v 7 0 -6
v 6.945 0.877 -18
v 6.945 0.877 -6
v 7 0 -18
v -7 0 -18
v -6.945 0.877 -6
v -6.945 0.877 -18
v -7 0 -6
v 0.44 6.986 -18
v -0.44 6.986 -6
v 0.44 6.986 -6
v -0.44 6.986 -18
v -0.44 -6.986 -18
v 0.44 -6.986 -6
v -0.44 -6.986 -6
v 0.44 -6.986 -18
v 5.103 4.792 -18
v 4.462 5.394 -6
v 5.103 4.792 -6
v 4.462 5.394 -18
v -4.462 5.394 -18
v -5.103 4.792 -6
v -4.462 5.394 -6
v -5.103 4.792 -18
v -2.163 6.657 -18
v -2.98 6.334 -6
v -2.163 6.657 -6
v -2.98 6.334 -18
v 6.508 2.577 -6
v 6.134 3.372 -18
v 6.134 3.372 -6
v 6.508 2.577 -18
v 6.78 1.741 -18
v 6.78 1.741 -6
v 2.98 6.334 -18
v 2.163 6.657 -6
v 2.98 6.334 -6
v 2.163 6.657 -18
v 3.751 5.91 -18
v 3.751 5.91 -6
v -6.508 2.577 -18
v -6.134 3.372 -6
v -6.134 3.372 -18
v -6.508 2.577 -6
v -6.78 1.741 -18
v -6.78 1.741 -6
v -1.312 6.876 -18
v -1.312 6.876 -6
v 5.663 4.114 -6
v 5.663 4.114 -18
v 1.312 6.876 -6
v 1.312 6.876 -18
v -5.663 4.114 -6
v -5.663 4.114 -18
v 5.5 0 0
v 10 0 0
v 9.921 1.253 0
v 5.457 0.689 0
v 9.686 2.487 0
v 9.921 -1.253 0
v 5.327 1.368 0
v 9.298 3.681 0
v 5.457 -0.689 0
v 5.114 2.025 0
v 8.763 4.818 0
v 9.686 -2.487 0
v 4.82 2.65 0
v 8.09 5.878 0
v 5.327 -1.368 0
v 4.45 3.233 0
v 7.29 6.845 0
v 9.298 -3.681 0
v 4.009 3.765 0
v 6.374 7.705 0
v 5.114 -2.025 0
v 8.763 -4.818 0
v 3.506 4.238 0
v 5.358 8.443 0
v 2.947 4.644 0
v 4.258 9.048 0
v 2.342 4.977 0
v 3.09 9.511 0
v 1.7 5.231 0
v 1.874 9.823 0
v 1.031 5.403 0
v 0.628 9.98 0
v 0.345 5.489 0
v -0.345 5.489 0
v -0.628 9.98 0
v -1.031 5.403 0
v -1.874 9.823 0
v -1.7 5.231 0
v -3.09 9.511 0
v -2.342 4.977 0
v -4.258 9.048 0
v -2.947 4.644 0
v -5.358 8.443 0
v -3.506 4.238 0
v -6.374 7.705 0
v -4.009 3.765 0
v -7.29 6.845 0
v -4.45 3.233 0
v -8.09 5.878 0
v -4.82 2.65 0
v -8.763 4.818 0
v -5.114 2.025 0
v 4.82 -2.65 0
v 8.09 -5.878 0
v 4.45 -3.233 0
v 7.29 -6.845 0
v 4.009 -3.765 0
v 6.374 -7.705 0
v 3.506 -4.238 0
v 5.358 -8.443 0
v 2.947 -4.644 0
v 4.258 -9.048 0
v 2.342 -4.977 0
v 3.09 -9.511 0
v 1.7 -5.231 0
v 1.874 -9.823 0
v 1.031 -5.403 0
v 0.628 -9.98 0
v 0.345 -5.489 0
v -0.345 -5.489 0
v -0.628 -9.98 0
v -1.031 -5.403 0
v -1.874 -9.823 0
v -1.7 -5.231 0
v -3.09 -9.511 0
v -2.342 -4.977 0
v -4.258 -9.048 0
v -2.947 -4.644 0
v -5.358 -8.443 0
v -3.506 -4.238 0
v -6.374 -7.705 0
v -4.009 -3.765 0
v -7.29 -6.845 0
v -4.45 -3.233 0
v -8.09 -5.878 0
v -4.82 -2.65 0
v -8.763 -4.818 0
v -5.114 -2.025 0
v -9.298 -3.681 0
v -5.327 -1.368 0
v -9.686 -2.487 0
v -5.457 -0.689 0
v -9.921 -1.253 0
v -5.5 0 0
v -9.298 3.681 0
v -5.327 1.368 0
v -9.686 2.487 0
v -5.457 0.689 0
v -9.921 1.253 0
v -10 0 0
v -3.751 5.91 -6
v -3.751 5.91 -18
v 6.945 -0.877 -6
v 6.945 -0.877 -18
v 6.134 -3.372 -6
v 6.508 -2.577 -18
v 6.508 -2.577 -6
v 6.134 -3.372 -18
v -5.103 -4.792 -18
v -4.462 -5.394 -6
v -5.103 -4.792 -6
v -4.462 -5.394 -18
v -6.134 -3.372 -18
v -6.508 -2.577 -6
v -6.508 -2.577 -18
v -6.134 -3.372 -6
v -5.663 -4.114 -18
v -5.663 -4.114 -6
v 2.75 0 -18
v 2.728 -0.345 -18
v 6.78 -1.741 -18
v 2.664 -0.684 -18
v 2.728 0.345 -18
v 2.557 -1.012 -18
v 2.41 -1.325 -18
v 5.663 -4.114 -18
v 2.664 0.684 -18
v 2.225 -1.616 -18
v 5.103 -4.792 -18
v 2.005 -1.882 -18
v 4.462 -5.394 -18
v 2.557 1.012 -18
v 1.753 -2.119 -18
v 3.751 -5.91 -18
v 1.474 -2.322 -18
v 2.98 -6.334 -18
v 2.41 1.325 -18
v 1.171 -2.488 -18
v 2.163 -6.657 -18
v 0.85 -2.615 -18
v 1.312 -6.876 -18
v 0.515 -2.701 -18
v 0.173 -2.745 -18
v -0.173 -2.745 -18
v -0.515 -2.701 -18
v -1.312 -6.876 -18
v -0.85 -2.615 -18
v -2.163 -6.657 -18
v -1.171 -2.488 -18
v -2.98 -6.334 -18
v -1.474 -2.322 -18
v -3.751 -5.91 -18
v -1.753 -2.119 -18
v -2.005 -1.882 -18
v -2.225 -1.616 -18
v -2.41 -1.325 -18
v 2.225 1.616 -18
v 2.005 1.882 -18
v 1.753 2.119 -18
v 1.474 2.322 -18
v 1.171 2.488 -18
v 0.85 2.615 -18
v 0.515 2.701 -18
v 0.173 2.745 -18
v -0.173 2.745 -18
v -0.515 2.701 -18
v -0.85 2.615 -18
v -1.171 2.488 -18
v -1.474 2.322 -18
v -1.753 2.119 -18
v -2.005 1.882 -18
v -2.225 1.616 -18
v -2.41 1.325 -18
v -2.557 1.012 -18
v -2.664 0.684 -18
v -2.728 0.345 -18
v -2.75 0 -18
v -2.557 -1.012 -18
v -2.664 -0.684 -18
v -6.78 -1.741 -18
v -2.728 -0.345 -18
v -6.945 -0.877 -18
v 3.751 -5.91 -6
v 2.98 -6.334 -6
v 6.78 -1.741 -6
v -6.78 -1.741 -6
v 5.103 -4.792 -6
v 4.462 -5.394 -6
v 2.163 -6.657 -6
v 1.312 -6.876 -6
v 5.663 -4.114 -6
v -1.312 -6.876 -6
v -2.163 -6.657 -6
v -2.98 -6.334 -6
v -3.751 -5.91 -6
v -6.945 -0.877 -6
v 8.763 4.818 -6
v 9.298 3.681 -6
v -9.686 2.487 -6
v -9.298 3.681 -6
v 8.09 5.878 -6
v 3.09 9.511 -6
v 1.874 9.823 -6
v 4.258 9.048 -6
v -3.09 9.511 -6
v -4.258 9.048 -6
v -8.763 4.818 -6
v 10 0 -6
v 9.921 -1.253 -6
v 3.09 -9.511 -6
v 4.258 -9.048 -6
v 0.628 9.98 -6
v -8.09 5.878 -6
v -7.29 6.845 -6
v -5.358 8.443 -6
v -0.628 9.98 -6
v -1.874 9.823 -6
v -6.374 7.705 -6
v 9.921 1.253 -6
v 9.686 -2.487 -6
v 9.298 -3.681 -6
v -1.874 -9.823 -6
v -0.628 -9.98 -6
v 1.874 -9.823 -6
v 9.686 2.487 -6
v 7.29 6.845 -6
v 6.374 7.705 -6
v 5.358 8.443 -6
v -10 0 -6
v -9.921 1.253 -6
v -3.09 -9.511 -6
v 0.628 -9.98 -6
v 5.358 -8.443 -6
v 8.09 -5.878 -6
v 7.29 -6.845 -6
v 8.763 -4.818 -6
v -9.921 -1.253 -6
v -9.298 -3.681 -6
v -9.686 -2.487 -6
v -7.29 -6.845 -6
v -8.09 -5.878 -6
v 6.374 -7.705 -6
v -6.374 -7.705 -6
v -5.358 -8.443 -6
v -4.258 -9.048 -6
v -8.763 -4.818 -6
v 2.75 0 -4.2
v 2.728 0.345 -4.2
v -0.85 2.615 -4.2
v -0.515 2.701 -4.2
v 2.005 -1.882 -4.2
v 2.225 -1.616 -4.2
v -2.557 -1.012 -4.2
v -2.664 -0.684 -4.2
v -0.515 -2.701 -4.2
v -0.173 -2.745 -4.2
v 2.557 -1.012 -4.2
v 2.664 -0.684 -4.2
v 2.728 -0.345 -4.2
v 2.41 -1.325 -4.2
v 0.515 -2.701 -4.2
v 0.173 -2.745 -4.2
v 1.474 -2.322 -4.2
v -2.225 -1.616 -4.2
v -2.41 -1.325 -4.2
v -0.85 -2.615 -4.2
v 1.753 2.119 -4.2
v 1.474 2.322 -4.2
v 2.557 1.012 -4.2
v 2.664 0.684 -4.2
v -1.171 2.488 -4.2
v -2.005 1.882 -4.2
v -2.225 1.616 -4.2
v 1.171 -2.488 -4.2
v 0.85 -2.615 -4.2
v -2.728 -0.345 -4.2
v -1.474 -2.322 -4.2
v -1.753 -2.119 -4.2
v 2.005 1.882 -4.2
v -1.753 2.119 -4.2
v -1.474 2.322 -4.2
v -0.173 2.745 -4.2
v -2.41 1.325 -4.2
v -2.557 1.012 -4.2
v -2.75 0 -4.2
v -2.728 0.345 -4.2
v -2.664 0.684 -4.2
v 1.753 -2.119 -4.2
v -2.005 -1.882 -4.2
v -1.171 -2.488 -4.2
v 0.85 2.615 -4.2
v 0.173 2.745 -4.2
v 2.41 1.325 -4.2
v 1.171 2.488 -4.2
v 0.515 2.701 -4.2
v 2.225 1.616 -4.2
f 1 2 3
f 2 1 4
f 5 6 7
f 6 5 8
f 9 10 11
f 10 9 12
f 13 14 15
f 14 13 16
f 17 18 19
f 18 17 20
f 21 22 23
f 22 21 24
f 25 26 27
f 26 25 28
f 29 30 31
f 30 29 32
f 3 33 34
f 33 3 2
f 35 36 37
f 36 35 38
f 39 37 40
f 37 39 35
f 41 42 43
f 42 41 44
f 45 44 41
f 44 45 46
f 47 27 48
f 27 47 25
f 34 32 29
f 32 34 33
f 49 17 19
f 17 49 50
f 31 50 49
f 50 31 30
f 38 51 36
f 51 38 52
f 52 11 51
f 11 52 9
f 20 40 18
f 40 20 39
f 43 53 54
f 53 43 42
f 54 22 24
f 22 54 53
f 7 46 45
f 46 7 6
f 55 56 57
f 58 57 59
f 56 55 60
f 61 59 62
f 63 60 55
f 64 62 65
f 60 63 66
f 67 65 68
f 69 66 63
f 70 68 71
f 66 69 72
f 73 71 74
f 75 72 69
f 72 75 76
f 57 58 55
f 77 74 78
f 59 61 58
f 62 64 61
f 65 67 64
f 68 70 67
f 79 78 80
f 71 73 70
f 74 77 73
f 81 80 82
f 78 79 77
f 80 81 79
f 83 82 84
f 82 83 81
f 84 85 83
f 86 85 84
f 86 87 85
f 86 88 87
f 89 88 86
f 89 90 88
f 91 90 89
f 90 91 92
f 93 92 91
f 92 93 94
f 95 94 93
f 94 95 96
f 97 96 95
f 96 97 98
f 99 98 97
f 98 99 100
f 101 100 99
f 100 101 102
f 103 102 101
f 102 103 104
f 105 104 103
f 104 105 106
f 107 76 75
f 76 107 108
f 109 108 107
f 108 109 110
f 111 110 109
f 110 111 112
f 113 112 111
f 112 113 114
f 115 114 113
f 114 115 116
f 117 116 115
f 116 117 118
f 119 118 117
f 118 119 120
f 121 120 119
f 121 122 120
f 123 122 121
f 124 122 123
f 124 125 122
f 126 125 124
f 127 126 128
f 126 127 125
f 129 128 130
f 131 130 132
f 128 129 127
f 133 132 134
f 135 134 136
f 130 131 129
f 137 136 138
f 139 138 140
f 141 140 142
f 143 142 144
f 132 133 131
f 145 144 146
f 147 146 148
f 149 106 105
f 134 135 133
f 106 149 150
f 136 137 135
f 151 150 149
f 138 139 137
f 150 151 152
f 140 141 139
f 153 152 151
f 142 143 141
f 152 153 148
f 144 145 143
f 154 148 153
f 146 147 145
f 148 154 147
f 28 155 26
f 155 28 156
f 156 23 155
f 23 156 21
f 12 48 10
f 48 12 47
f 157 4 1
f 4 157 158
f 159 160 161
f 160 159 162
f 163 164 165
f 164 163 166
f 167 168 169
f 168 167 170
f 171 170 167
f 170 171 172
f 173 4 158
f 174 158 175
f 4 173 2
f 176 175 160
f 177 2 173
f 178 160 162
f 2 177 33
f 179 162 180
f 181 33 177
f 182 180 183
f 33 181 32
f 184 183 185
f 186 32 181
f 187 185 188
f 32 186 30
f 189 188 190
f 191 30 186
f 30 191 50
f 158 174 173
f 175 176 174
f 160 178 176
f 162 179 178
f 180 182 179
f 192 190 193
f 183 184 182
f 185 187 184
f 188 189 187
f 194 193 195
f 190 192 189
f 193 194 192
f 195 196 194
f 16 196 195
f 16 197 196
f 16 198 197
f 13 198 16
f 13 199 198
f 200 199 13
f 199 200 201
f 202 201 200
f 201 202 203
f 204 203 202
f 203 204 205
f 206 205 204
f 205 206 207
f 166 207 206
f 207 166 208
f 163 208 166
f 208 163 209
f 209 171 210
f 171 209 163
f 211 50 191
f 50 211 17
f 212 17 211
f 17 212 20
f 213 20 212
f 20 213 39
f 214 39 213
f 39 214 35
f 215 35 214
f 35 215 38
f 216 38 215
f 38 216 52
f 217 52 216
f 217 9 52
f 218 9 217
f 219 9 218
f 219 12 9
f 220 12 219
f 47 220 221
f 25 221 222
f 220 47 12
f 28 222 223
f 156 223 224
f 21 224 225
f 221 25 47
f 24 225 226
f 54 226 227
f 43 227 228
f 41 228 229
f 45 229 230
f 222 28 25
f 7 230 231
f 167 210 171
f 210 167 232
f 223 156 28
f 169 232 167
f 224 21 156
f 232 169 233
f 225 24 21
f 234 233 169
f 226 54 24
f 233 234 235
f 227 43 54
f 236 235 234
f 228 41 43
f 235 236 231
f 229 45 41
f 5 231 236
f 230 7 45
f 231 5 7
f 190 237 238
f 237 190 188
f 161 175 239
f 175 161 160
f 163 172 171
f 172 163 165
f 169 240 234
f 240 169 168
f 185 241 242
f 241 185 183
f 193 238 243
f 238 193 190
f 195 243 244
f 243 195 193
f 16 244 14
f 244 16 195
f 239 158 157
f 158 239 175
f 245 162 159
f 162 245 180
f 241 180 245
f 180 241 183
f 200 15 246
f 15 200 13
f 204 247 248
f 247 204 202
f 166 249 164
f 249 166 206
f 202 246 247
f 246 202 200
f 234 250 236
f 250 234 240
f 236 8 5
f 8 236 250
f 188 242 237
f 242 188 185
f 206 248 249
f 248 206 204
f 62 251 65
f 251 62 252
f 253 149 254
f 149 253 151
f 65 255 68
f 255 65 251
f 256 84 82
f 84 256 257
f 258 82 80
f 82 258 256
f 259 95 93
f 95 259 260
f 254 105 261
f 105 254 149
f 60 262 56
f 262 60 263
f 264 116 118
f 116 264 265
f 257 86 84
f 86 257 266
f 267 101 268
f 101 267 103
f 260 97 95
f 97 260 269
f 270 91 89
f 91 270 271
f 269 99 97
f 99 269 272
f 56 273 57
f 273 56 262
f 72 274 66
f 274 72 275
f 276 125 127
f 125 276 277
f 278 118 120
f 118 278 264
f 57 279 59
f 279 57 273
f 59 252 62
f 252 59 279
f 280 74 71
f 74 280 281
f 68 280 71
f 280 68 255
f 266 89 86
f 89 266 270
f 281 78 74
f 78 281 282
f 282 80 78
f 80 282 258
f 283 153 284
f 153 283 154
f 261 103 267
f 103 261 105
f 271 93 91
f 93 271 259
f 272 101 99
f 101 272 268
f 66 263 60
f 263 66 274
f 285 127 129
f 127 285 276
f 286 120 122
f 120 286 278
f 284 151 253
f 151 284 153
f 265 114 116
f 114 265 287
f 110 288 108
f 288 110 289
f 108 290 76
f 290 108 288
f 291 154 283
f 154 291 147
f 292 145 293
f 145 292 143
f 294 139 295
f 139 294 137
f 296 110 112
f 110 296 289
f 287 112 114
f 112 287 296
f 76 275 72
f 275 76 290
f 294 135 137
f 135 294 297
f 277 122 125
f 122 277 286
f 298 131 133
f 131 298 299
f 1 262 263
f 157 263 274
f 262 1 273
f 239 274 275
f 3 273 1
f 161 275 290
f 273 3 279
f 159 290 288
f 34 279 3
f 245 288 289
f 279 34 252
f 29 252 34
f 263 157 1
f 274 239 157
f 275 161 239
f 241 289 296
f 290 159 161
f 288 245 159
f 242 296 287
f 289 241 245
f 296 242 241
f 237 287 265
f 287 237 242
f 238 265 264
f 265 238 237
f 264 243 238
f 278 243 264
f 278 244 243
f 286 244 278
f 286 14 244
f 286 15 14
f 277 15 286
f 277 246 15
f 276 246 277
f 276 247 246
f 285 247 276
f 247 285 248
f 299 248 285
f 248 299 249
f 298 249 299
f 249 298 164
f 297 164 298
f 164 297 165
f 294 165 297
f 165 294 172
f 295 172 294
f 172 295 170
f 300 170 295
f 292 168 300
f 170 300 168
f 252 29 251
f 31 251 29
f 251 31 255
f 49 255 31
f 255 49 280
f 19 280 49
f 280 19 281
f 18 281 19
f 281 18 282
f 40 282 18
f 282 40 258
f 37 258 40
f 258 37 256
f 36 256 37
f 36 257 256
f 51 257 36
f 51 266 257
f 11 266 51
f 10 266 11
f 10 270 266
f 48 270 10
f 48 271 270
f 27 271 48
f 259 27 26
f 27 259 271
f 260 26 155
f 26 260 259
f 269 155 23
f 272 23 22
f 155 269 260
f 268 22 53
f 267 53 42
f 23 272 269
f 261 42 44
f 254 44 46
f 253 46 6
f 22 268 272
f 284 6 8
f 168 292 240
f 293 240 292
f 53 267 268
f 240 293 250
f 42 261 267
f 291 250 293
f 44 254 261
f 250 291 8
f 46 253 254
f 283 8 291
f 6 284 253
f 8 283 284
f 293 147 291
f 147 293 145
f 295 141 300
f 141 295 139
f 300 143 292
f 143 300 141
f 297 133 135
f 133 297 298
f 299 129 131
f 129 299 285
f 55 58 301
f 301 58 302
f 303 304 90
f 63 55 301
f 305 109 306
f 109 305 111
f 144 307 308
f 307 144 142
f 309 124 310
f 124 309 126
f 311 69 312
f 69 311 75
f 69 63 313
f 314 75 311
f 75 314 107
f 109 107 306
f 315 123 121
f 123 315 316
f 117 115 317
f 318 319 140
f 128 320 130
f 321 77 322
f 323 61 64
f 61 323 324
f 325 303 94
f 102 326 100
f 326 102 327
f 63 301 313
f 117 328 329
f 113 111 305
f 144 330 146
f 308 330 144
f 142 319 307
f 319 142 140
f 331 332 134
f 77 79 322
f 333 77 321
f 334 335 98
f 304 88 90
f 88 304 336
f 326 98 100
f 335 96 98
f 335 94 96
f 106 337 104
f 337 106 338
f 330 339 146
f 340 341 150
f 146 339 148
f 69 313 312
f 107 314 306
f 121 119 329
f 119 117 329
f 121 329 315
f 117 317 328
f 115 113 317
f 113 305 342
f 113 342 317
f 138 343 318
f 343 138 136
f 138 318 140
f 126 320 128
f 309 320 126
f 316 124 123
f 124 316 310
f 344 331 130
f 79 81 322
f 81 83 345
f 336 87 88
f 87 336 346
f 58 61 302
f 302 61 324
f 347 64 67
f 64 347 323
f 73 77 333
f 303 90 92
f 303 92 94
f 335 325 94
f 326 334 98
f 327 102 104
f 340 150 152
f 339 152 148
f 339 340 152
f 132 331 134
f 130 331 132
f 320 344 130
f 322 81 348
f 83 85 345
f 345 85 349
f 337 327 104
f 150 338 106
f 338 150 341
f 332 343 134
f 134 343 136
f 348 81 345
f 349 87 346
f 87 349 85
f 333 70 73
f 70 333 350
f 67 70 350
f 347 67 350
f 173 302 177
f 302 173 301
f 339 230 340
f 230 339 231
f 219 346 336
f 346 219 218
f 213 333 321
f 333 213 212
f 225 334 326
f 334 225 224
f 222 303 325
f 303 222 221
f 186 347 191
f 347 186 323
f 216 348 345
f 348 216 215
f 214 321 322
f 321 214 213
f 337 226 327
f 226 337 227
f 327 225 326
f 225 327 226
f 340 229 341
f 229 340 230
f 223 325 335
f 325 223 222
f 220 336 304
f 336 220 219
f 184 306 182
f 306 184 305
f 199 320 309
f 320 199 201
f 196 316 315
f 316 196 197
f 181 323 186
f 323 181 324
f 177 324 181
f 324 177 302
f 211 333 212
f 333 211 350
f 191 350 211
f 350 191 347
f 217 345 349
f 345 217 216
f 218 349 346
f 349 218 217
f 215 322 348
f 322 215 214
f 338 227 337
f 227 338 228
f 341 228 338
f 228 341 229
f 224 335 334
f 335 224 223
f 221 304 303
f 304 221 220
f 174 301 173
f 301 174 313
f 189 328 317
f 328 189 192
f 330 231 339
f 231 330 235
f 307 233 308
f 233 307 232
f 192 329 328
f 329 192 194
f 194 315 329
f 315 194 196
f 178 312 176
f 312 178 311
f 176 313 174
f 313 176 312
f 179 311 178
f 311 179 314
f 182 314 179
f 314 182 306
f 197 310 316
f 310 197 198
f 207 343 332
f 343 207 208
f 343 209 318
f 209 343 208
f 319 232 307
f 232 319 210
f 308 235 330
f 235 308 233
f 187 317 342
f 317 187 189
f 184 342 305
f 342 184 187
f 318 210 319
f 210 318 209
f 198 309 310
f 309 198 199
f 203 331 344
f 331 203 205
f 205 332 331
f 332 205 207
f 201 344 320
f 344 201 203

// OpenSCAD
$fn = 50;


difference() {
	union() {
		translate(v = [0, 0, -18.0000000000]) {
			cylinder(h = 18, r = 7.0000000000);
		}
		translate(v = [0, 0, -6.0000000000]) {
			cylinder(h = 6, r = 10.0000000000);
		}
	}
	union() {
		translate(v = [0, 0, 0]) {
			rotate(a = [0, 0, 0]) {
				difference() {
					union() {
						#translate(v = [0, 0, -18.0000000000]) {
							cylinder(h = 18, r = 2.2500000000);
						}
						#translate(v = [0, 0, -4.2000000000]) {
							cylinder(h = 4.2000000000, r = 7.0000000000, r1 = 2.7500000000, r2 = 5.5000000000);
						}
						#translate(v = [0, 0, -18.0000000000]) {
							cylinder(h = 18, r = 2.7500000000);
						}
						#translate(v = [0, 0, -18.0000000000]) {
							cylinder(h = 18, r = 2.2500000000);
						}
					}
					union();
				}
			}
		}
	}
}
